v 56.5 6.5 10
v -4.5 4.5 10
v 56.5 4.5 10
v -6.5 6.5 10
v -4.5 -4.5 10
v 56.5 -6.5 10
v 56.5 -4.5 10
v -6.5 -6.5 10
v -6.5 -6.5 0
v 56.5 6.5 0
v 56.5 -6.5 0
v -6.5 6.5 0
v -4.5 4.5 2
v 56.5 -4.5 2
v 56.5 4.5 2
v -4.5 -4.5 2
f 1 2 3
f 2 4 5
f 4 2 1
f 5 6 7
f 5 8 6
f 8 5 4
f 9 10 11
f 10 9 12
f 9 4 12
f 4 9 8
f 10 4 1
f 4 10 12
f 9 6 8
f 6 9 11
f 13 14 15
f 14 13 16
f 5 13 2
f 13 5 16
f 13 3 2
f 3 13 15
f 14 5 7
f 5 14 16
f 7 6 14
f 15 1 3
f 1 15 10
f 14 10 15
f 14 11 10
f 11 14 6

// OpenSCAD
// file: common.scad
CENTER_SIZE = 9;
SLEEVE_REACH = 56.5;
GROOVE_WIDTH = 9;
WALL_HEIGHT = 10;
WALL_THICKNESS = 2;
BASE_THICKNESS = 2;
TOTAL_WIDTH = GROOVE_WIDTH + 2 * WALL_THICKNESS;
SLEEVE_LENGTH = SLEEVE_REACH - CENTER_SIZE/2;
DOWEL_DIAMETER = 4.5;
DOWEL_DEPTH = 3;
CARDBOARD_THICKNESS = 2;
GROOVE_BOTTOM = CARDBOARD_THICKNESS;
CURVE_POWER = 2;
CURVE_POINTS = 20;
TILT_ANGLE_EXTRA = 5;
FLEXIBLE_WALL_HEIGHT = WALL_HEIGHT * 2;
function wall_curve(z) =
    GROOVE_BOTTOM/2 + (GROOVE_WIDTH/2 - GROOVE_BOTTOM/2) * pow(z/(FLEXIBLE_WALL_HEIGHT - BASE_THICKNESS), CURVE_POWER);
module curved_wall_profile(side) {
    wall_h = FLEXIBLE_WALL_HEIGHT - BASE_THICKNESS;
    points_inner = [for (i = [0:CURVE_POINTS])
        [wall_curve(i * wall_h / CURVE_POINTS) * side,
         i * wall_h / CURVE_POINTS]
    ];
    points_outer = [for (i = [0:CURVE_POINTS])
        [(wall_curve(i * wall_h / CURVE_POINTS) + WALL_THICKNESS) * side,
         i * wall_h / CURVE_POINTS]
    ];
    all_points = concat(
        [[points_inner[0][0], 0]],
        points_inner,
        [points_outer[len(points_outer)-1]],
        [for (i = [len(points_outer)-1:-1:0]) points_outer[i]],
        [[points_outer[0][0], 0]]
    );
    polygon(all_points);
}
module draw_regular_wall_base(width) {
    translate([0, 0, BASE_THICKNESS])
        cube([width, WALL_THICKNESS, WALL_HEIGHT - BASE_THICKNESS]);
}
module draw_flexible_wall_base(width) {
    tilt_angle = atan((GROOVE_WIDTH/2 - GROOVE_BOTTOM/2) / (FLEXIBLE_WALL_HEIGHT - BASE_THICKNESS)) + TILT_ANGLE_EXTRA;
    rotate([0, 0, 90])
        rotate([tilt_angle + 6, 0, 0])
            rotate([90, 0, 90])
                linear_extrude(height = width)
                    curved_wall_profile(1);
}
module draw_center_base(with_dowel = false) {
    union() {
        translate([-TOTAL_WIDTH/2, -TOTAL_WIDTH/2, 0])
            cube([TOTAL_WIDTH, TOTAL_WIDTH, BASE_THICKNESS]);
        if (with_dowel) {
            translate([0, 0, -DOWEL_DEPTH])
                cylinder(h=DOWEL_DEPTH, d=DOWEL_DIAMETER, $fn=30);
        }
    }
}
module place_regular_center_wall(side) {
    if (side == 0) {
        translate([CENTER_SIZE/2 + WALL_THICKNESS, -TOTAL_WIDTH/2, 0])
            rotate([0, 0, 90])
                draw_regular_wall_base(TOTAL_WIDTH);
    } else if (side == 1) {
        translate([-TOTAL_WIDTH/2, CENTER_SIZE/2, 0])
            draw_regular_wall_base(TOTAL_WIDTH);
    } else if (side == 2) {
        translate([-CENTER_SIZE/2, -TOTAL_WIDTH/2, 0])
            rotate([0, 0, 90])
                draw_regular_wall_base(TOTAL_WIDTH);
    } else if (side == 3) {
        translate([-TOTAL_WIDTH/2, -CENTER_SIZE/2 - WALL_THICKNESS, 0])
            draw_regular_wall_base(TOTAL_WIDTH);
    }
}
module place_flexible_center_wall(side) {
    if (side == 0) {
        translate([CENTER_SIZE/2 - WALL_THICKNESS/2, TOTAL_WIDTH/2, 0])
            rotate([0, 0, 180])
                draw_flexible_wall_base(TOTAL_WIDTH);
    } else if (side == 1) {
        translate([-TOTAL_WIDTH/2, CENTER_SIZE/2 - WALL_THICKNESS/2, 0])
            rotate([0, 0, 270])
                draw_flexible_wall_base(TOTAL_WIDTH);
    } else if (side == 2) {
        translate([-CENTER_SIZE/2 + WALL_THICKNESS/2, -TOTAL_WIDTH/2, 0])
            draw_flexible_wall_base(TOTAL_WIDTH);
    } else if (side == 3) {
        translate([CENTER_SIZE/2 + WALL_THICKNESS, -TOTAL_WIDTH/2 + WALL_THICKNESS + WALL_THICKNESS/2, 0])
            rotate([0, 0, 90])
                draw_flexible_wall_base(TOTAL_WIDTH);
    }
}
module place_center_wall(side, wall_type = "regular") {
    if (wall_type == "regular") {
        place_regular_center_wall(side);
    } else if (wall_type == "flexible") {
        place_flexible_center_wall(side);
    }
}
module draw_sleeve_base(with_dowel = false) {
    union() {
        translate([0, -TOTAL_WIDTH/2, 0])
            cube([SLEEVE_LENGTH, TOTAL_WIDTH, BASE_THICKNESS]);
        if (with_dowel) {
            translate([25 - CENTER_SIZE/2, 0, -DOWEL_DEPTH])
                cylinder(h=DOWEL_DEPTH, d=DOWEL_DIAMETER, $fn=30);
            translate([50 - CENTER_SIZE/2, 0, -DOWEL_DEPTH])
                cylinder(h=DOWEL_DEPTH, d=DOWEL_DIAMETER, $fn=30);
        }
    }
}
module draw_regular_sleeve_wall(wall_side) {
    y_offset = (wall_side == "left") ? -TOTAL_WIDTH/2 : TOTAL_WIDTH/2 - WALL_THICKNESS;
    translate([0, y_offset, 0])
        draw_regular_wall_base(SLEEVE_LENGTH);
}
module draw_flexible_sleeve_wall(side) {
    if (side == "left") {
        translate([0, TOTAL_WIDTH/2 - WALL_THICKNESS/2 - WALL_THICKNESS, 0])
            rotate([0, 0, 270])
                draw_flexible_wall_base(SLEEVE_LENGTH);
    } else if (side == "right") {
        translate([SLEEVE_LENGTH, -TOTAL_WIDTH/2 + WALL_THICKNESS + WALL_THICKNESS/2, 0])
            rotate([0, 0, 90])
                draw_flexible_wall_base(SLEEVE_LENGTH);
    }
}
module draw_sleeve_wall(wall_side, wall_type = "regular") {
    if (wall_type == "regular") {
        draw_regular_sleeve_wall(wall_side);
    } else if (wall_type == "flexible") {
        draw_flexible_sleeve_wall(wall_side);
    }
}
module draw_full_sleeve(with_dowel = false, wall_type = "regular") {
    union() {
        draw_sleeve_base(with_dowel);
        draw_sleeve_wall("left", wall_type);
        draw_sleeve_wall("right", wall_type);
    }
}
module place_sleeve(side, with_dowel = false, wall_type = "regular") {
    if (side == 0) {
        translate([CENTER_SIZE/2, 0, 0])
            draw_full_sleeve(with_dowel, wall_type);
    } else if (side == 1) {
        rotate([0, 0, 90])
            translate([CENTER_SIZE/2, 0, 0])
                draw_full_sleeve(with_dowel, wall_type);
    } else if (side == 2) {
        rotate([0, 0, 180])
            translate([CENTER_SIZE/2, 0, 0])
                draw_full_sleeve(with_dowel, wall_type);
    } else if (side == 3) {
        rotate([0, 0, 270])
            translate([CENTER_SIZE/2, 0, 0])
                draw_full_sleeve(with_dowel, wall_type);
    }
}
module add_dowel(x, y, dowel_diameter, dowel_depth) {
    translate([x, y, -dowel_depth])
        cylinder(h=dowel_depth, d=dowel_diameter, $fn=30);
}
// main file
use <common.scad>

union() {
    draw_center_base(with_dowel = false);
    place_center_wall(1);
    place_center_wall(2);
    place_center_wall(3);
    place_sleeve(0, with_dowel = false);
}
